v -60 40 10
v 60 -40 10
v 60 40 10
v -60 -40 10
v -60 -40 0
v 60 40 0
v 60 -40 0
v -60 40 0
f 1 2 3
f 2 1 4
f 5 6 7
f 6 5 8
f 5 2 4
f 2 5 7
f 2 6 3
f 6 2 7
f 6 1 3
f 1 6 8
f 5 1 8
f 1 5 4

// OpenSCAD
// 简易多零件流程测试：120 x 80 x 10 底板
translate([-60,-40,0]) cube([120,80,10]);
